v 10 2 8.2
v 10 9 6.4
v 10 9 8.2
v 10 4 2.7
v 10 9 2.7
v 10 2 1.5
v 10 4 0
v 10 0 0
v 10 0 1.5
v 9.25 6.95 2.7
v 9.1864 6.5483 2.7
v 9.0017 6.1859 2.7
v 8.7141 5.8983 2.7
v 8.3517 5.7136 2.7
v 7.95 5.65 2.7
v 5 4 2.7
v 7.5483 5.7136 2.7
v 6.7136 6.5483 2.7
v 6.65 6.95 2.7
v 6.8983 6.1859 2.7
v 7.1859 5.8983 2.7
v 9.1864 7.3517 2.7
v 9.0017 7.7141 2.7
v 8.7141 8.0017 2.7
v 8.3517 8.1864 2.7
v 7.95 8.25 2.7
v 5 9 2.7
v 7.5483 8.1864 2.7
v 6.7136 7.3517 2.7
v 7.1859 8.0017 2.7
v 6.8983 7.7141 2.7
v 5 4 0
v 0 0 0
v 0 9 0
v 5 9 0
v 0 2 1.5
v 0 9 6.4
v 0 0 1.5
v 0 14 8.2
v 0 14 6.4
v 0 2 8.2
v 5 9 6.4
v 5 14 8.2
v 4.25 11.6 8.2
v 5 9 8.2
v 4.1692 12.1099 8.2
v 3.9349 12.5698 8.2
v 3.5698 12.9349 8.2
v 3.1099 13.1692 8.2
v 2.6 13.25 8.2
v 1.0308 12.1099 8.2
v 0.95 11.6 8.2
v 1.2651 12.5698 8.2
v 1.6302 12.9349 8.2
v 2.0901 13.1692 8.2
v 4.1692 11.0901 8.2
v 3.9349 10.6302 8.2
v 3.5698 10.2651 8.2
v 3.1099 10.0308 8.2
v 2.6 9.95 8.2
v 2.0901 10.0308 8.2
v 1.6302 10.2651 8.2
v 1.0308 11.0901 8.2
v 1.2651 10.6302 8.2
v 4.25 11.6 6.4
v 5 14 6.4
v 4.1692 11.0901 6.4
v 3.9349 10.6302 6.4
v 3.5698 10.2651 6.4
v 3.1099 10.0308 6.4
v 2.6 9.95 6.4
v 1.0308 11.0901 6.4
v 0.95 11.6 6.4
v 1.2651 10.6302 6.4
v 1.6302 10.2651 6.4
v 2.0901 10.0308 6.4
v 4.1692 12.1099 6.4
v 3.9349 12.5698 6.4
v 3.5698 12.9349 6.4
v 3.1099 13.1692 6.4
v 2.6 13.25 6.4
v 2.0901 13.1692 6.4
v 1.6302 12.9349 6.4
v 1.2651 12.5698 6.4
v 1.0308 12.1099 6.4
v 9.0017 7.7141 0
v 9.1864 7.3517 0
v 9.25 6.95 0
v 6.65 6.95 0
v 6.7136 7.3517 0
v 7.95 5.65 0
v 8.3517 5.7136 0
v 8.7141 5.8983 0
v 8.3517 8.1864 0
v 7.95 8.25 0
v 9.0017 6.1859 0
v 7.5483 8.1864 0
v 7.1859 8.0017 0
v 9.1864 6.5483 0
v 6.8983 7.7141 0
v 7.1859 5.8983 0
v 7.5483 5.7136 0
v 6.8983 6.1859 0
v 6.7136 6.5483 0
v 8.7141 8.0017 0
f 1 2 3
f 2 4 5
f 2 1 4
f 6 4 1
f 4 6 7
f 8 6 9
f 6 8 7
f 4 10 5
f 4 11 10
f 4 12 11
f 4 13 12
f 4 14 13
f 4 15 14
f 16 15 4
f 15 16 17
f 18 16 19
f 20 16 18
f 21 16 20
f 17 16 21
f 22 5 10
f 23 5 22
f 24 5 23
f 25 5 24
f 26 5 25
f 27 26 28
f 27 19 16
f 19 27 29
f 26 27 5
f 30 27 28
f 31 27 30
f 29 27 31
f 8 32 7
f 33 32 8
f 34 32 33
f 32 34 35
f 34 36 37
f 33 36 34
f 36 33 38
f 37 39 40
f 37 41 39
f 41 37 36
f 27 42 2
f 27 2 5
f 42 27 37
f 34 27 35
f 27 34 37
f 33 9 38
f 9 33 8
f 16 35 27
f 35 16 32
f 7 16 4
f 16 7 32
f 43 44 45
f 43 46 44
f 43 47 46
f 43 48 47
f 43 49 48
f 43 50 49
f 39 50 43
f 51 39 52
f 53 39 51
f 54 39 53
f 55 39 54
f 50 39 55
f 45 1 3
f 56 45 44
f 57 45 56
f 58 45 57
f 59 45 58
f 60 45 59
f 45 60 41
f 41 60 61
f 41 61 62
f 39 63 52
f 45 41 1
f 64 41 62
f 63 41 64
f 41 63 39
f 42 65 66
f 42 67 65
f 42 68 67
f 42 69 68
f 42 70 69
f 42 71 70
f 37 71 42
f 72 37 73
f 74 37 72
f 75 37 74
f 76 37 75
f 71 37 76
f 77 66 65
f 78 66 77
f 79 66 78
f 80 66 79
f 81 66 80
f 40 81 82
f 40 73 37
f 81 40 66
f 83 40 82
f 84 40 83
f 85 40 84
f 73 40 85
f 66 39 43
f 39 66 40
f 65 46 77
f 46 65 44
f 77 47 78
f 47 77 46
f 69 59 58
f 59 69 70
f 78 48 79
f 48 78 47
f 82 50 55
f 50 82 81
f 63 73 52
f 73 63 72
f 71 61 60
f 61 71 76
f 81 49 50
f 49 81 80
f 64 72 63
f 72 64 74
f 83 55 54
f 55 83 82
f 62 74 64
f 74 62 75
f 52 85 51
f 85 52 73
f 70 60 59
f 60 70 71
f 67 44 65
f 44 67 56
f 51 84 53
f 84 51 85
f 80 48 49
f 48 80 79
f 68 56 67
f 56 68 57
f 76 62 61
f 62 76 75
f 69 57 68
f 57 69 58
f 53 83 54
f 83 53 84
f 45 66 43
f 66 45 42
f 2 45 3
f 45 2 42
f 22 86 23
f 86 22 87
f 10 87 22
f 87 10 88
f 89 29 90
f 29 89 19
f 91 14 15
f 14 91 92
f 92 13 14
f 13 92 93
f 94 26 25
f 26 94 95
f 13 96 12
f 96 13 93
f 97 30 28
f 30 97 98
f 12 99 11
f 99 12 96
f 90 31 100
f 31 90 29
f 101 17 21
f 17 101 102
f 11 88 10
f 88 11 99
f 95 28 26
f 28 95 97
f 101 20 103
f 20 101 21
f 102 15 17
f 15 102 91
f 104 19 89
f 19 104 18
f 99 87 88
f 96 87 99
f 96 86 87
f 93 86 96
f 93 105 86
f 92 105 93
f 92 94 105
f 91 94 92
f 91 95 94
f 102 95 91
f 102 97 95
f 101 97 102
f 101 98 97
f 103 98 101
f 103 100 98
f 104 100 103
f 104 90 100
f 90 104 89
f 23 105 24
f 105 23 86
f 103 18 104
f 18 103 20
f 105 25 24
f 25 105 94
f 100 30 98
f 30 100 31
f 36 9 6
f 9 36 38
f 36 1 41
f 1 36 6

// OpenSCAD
$fn = 20;

spkr_height = 2.7;
top_base = 6.4;
mid_height = top_base - spkr_height;

difference() {
    union() {
        //bottom
        difference() {
            cube([5+5, 4+5, spkr_height]);
            translate([5, 4, 0]) cube([5, 5, spkr_height]);
        }

        // middle
        translate([0, 0, spkr_height]) cube([5+5, 4+5, mid_height]);
        // holding pin
        translate([5+2.95, 4+2.95, 0]) cylinder(h=spkr_height, d=2.6);

        // top
        difference() {
            translate([0, 0, top_base]) cube([5+5, 4+5+5, 1.8]);
            translate([2.6, 4+5+2.6, top_base]) cylinder(h=1.8, d=3.3);
            translate([5, 4+5, top_base]) cube([5, 5, 1.8]);
        }
    }
    translate([0, 0, 1.5]) cube([5+5, 2, 10]);
}
